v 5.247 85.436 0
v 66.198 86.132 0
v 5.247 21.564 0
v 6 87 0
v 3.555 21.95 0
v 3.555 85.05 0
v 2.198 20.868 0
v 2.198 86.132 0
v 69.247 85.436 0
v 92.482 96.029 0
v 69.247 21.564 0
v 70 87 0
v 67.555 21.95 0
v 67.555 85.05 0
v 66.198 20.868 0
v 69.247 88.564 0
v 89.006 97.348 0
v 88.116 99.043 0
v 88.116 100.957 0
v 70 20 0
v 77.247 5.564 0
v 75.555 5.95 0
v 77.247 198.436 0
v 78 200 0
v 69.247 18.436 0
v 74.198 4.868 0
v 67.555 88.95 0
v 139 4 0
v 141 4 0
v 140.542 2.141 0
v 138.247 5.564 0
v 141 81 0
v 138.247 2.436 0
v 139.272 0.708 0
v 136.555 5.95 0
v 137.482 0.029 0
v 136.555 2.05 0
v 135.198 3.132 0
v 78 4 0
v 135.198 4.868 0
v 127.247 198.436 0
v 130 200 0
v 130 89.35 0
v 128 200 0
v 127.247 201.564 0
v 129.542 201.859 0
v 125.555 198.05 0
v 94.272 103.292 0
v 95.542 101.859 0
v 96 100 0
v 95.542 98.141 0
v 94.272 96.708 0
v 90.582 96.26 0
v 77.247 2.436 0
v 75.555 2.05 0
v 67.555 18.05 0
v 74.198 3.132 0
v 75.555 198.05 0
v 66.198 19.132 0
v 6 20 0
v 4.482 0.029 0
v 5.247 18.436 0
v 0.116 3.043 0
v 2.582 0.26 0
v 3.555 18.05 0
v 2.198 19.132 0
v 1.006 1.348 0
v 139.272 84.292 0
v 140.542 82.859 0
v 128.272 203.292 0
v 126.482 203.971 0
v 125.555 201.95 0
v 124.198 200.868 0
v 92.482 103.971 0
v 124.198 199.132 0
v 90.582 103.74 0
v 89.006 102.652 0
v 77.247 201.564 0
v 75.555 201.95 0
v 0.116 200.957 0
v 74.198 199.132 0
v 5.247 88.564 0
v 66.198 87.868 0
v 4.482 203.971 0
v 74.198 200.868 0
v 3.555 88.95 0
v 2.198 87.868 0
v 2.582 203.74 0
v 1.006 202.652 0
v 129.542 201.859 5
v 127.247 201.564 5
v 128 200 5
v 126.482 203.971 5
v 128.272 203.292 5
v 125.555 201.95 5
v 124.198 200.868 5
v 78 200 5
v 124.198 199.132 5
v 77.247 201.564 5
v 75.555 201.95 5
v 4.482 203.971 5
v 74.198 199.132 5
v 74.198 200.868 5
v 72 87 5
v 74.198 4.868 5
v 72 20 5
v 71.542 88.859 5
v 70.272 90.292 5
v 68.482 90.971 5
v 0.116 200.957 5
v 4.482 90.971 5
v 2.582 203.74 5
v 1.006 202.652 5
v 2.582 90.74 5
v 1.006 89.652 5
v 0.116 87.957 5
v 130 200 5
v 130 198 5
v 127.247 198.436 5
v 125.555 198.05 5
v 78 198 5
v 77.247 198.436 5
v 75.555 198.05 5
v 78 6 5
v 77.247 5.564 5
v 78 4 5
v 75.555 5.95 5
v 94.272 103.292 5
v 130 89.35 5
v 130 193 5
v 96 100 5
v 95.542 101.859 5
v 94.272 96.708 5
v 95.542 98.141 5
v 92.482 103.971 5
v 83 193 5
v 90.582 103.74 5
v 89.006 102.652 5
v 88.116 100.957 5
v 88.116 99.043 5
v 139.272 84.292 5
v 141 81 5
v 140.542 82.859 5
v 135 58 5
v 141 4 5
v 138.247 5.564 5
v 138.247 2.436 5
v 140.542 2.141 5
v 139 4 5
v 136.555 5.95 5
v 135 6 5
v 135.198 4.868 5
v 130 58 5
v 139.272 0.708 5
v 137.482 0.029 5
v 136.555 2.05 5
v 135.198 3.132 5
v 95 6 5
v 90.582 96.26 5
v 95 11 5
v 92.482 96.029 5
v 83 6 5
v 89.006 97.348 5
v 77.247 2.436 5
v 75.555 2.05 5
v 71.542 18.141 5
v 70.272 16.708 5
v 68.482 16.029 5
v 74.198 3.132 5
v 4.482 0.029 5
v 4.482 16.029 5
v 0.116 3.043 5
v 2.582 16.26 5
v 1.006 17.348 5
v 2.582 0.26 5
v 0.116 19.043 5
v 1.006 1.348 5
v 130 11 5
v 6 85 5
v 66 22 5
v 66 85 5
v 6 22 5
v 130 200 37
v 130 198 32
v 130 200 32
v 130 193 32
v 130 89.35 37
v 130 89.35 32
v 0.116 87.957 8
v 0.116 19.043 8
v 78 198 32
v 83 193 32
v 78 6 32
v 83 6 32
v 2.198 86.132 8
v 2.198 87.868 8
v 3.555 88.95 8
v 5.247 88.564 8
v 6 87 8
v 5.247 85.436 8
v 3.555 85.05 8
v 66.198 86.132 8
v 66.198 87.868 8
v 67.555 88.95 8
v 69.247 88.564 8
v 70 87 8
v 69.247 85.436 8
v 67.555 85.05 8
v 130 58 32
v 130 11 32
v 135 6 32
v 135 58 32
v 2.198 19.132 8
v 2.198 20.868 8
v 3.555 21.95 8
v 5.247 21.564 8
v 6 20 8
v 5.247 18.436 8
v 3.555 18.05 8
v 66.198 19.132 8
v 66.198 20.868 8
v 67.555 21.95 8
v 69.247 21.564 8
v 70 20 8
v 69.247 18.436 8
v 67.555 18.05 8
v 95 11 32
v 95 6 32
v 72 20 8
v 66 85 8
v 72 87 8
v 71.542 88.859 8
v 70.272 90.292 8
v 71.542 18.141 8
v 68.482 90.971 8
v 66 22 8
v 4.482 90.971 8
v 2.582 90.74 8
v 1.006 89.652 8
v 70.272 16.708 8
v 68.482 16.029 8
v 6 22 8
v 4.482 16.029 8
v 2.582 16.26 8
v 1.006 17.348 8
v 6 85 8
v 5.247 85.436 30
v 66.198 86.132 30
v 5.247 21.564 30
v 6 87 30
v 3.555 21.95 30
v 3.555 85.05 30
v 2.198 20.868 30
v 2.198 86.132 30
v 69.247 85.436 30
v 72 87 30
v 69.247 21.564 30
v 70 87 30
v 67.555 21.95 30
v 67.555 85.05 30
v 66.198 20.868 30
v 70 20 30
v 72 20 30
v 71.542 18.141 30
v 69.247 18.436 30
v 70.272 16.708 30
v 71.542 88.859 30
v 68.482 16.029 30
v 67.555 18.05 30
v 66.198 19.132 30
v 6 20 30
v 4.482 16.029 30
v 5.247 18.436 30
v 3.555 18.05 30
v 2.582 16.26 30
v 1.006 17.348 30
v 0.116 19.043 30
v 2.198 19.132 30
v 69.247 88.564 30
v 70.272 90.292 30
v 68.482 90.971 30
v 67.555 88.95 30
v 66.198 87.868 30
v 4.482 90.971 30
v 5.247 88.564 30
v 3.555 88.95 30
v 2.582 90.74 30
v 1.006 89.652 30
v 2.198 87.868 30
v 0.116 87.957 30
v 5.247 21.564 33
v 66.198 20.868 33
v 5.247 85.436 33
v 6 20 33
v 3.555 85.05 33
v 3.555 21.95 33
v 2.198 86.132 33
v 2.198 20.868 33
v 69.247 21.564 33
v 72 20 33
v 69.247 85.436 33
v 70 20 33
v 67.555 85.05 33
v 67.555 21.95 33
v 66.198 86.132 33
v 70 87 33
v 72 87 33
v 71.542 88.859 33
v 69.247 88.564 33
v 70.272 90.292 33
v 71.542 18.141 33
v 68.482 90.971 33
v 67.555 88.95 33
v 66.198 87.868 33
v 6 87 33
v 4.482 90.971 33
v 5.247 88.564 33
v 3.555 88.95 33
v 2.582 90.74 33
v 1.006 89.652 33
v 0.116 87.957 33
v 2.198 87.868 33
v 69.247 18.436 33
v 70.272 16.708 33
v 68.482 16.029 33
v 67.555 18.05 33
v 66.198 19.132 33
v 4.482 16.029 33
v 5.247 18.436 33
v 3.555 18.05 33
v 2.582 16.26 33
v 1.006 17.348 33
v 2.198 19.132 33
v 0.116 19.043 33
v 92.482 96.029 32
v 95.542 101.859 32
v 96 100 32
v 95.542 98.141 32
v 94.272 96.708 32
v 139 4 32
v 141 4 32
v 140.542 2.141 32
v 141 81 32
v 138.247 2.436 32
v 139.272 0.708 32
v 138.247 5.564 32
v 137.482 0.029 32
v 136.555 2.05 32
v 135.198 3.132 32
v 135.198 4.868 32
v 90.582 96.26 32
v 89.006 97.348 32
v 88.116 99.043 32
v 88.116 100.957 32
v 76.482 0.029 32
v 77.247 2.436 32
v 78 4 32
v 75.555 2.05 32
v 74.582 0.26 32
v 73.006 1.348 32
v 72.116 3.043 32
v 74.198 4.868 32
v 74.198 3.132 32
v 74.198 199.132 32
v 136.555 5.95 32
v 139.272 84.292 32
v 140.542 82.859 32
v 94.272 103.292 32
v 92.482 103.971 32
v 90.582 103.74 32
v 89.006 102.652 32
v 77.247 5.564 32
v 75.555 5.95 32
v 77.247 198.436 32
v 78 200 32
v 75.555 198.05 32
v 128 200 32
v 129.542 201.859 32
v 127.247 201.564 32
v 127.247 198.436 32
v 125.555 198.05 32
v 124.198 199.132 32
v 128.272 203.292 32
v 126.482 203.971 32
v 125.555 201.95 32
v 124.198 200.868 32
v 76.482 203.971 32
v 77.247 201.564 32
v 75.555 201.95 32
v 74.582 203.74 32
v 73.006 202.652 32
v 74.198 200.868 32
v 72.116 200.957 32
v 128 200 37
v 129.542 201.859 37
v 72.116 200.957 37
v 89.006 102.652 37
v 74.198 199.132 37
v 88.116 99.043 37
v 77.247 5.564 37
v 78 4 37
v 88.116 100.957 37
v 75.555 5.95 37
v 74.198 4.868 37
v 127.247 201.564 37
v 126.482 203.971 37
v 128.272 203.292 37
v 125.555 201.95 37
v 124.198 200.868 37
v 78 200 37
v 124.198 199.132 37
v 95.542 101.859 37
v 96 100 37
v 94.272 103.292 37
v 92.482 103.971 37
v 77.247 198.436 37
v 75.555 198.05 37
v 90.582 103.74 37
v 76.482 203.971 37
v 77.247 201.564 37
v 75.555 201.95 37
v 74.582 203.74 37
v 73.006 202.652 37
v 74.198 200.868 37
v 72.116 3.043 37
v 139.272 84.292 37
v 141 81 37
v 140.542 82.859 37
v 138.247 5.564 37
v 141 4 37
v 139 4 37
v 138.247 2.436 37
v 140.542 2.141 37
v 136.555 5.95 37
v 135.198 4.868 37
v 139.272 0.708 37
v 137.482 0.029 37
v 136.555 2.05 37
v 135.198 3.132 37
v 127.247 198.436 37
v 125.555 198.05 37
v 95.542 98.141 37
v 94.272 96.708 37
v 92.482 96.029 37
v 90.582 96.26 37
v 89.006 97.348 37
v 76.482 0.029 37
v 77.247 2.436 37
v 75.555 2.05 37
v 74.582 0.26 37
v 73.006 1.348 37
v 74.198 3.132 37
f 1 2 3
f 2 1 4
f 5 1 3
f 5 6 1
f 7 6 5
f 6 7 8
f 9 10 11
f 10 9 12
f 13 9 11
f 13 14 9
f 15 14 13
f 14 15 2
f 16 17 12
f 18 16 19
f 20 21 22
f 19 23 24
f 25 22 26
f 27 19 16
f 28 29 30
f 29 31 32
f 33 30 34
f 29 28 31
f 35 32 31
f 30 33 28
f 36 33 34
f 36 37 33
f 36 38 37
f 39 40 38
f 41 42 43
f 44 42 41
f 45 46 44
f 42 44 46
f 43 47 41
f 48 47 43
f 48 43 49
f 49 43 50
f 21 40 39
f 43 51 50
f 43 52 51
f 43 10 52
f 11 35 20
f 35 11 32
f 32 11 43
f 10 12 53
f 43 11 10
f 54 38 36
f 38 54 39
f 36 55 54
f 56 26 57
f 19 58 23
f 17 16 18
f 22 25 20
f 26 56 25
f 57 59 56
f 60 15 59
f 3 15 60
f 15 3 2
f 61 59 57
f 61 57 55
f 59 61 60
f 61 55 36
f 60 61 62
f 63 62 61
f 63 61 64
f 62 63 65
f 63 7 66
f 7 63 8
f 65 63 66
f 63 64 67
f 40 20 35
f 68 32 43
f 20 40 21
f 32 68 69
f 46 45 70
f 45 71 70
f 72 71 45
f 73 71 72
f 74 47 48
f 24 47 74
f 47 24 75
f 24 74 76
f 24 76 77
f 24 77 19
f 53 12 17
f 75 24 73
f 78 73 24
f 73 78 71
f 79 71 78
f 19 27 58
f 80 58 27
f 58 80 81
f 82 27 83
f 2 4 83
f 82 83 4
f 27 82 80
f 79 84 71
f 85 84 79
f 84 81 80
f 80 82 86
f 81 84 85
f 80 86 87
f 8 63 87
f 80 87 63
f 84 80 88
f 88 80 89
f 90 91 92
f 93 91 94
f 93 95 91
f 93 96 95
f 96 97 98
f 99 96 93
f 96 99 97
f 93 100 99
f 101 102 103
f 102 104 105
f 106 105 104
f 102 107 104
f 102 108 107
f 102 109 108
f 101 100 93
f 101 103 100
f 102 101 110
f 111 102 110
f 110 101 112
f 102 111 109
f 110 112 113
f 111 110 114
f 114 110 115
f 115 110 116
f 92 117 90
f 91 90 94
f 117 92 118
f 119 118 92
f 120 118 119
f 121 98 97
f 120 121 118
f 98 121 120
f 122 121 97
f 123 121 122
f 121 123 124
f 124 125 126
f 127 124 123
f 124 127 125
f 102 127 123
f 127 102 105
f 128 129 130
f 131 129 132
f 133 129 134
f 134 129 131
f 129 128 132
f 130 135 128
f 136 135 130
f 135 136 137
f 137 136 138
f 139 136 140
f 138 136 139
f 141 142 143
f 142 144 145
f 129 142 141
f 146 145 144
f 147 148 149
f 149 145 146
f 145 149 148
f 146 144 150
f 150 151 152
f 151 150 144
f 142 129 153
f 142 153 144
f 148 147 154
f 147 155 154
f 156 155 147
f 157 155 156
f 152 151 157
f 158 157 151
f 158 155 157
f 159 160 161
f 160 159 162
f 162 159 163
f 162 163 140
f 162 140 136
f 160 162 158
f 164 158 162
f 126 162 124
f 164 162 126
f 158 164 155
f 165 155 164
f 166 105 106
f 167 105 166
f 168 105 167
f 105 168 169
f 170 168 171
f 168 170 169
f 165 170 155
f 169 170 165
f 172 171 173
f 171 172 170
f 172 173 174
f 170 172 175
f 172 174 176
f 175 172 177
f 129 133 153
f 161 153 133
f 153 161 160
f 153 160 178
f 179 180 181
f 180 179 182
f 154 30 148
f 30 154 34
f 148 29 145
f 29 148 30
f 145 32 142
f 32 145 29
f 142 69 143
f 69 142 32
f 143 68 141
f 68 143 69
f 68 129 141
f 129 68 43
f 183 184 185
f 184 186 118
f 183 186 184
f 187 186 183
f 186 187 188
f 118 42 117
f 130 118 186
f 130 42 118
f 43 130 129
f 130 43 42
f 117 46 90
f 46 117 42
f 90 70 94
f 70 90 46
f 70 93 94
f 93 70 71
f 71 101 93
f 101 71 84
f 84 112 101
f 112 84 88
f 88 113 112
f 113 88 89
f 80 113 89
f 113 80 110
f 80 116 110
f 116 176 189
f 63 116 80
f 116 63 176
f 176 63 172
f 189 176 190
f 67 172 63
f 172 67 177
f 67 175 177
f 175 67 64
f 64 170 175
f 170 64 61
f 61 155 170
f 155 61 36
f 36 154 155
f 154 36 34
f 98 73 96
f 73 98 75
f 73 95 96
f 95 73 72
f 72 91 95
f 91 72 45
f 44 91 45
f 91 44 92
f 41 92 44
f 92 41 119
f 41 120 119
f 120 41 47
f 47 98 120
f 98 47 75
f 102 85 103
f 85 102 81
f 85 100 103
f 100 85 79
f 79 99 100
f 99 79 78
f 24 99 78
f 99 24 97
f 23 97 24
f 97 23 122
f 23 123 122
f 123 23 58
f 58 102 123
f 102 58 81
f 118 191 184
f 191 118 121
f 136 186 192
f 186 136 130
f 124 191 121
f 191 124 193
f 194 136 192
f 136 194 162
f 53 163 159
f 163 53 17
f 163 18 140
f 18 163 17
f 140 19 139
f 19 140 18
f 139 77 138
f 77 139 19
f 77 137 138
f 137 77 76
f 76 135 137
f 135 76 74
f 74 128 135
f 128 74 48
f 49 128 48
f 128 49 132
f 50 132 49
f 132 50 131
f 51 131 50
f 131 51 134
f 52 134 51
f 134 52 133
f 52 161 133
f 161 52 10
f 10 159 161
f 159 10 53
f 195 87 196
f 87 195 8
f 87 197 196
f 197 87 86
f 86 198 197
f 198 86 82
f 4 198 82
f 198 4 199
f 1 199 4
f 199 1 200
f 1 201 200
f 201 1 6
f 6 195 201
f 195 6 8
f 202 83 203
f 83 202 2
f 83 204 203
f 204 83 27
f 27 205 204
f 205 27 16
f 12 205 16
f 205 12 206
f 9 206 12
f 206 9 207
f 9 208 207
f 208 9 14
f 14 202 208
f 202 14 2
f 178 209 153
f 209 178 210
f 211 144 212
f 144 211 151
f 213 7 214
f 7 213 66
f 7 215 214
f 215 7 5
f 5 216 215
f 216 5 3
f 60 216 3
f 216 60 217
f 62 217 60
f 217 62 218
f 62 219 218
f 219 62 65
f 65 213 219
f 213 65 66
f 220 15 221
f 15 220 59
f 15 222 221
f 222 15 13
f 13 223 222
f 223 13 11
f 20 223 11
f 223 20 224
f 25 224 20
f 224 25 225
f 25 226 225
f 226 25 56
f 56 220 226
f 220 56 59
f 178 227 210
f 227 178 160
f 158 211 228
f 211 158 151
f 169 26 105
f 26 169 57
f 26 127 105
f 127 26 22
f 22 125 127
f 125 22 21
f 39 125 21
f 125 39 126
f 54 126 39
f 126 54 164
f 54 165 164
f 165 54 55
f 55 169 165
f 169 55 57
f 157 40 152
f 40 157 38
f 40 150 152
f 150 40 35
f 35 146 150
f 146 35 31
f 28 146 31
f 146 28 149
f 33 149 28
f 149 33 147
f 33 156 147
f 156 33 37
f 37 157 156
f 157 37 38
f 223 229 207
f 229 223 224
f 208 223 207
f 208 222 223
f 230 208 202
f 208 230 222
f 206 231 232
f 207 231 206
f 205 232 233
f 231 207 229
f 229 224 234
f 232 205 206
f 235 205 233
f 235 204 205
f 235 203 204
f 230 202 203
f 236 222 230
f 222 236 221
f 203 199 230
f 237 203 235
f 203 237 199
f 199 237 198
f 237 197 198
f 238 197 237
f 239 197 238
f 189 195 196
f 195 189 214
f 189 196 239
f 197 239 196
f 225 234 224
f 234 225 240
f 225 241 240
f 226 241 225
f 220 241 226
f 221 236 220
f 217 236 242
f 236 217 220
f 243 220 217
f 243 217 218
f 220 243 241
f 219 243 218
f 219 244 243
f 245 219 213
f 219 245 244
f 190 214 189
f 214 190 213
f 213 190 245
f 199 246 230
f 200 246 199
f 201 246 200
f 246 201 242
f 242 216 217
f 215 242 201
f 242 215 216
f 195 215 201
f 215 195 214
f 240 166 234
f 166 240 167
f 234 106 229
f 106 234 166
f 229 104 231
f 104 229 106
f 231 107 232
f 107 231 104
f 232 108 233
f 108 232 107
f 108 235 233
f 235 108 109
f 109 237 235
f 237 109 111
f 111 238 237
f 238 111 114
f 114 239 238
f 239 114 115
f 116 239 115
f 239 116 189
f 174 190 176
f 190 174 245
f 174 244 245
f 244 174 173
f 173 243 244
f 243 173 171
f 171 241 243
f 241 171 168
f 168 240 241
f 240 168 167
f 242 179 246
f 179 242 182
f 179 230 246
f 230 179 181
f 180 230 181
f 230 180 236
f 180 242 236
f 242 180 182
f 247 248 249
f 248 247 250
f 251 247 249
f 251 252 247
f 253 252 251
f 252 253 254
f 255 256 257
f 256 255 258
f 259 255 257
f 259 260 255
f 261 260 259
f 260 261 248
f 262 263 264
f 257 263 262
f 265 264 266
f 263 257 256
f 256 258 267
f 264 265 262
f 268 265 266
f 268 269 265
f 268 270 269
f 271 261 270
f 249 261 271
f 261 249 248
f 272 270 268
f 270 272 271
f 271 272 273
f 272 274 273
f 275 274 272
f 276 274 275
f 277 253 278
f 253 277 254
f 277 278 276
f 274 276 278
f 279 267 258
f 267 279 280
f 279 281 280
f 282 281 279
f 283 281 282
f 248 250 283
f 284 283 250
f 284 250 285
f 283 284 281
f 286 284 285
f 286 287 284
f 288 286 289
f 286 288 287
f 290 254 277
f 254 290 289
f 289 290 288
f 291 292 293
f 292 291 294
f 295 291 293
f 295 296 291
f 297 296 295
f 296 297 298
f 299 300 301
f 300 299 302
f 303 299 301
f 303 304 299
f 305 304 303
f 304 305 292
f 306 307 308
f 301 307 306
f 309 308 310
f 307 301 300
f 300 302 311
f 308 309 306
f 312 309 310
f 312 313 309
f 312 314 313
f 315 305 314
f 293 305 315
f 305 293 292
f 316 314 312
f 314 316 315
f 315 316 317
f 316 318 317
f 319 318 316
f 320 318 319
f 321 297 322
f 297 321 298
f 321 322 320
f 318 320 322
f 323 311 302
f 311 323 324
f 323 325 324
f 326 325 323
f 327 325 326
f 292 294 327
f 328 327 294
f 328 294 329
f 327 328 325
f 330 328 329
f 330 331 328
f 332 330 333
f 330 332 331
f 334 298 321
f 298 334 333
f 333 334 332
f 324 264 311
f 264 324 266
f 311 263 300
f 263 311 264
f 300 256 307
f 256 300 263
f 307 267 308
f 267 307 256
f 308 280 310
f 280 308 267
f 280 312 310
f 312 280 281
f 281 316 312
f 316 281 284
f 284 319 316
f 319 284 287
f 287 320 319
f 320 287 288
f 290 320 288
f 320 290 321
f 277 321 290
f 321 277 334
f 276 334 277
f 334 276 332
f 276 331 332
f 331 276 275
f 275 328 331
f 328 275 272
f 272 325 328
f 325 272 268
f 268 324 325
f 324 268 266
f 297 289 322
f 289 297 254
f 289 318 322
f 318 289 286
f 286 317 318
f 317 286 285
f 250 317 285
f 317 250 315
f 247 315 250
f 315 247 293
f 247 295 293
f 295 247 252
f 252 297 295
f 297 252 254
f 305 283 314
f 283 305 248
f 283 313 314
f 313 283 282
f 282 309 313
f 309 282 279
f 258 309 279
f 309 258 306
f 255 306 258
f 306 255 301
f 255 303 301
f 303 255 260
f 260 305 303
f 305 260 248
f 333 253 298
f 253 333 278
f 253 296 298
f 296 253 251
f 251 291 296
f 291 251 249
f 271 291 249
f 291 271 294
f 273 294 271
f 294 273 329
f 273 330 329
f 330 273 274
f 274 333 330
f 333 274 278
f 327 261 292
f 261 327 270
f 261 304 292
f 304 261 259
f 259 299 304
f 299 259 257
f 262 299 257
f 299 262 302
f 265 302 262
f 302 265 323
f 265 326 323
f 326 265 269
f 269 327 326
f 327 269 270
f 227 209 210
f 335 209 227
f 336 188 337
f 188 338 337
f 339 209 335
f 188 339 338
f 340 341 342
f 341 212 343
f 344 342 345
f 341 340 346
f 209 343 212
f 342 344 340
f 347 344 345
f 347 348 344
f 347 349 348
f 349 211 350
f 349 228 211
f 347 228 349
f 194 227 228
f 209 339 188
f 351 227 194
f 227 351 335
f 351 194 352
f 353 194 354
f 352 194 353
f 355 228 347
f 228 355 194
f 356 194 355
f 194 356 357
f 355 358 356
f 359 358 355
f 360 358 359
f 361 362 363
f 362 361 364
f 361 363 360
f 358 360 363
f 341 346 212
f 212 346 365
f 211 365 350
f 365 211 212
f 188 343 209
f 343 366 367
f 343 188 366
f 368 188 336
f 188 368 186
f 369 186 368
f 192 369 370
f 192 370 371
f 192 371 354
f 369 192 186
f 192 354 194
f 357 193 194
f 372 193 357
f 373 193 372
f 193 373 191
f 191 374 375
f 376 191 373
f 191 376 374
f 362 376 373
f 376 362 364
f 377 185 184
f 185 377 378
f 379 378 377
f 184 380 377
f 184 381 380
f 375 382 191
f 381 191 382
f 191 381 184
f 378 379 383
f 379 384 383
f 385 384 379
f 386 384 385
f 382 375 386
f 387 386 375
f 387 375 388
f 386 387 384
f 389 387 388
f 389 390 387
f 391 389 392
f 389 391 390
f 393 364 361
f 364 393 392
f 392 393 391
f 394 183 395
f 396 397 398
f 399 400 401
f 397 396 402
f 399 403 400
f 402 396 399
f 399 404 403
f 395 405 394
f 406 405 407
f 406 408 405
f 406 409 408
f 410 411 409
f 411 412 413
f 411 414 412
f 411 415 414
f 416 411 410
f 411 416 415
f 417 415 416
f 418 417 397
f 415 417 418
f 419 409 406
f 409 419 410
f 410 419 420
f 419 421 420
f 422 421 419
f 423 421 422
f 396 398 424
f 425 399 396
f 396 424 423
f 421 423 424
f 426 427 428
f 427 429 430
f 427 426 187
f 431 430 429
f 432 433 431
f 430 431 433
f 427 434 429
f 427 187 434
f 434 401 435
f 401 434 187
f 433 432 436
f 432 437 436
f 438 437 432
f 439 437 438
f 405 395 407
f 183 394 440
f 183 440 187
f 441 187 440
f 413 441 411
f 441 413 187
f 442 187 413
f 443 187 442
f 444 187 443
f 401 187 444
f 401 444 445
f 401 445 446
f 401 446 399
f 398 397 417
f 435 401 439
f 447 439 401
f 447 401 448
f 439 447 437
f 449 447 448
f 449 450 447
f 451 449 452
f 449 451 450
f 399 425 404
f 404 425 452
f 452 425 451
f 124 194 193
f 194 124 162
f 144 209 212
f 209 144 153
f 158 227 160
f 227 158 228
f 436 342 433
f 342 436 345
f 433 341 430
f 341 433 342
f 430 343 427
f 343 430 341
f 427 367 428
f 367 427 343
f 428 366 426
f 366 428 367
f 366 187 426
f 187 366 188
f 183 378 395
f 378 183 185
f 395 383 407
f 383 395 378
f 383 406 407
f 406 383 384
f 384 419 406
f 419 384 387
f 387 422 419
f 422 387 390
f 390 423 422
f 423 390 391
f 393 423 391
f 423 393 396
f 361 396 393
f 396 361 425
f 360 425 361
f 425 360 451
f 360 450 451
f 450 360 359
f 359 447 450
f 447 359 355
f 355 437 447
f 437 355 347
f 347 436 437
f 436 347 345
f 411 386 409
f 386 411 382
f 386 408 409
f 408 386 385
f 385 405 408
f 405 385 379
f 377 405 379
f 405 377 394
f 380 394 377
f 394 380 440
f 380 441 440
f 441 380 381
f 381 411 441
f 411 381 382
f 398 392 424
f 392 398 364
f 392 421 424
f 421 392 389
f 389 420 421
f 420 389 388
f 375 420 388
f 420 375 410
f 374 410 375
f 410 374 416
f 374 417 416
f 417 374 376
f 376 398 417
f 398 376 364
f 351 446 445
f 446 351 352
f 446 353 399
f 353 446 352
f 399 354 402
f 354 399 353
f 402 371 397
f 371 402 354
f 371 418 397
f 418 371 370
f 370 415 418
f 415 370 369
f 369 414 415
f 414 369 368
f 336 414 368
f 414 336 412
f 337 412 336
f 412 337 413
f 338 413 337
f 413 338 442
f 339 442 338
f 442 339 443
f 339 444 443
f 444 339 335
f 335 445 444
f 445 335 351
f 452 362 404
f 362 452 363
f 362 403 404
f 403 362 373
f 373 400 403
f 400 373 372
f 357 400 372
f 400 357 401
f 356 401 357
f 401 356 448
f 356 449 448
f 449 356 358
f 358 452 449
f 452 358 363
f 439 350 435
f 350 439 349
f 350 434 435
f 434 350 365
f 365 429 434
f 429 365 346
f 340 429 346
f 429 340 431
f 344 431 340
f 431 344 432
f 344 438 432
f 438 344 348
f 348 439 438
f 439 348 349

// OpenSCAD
// file: PD_Wall_Back.scad
/*
 * This is a wall for the Power distribution at buttom 
 * It should be about 5 mm thick in order to match
 */

module PD_Wall_Back(){
    
    polygon(points=[[0, 5], [17, 5], [17, 0], [34, 0],
        [34, 5], [51, 5], [51, 0], [68, 0], [68, 5],
        [85, 5], [85, 0], [102, 0], [102, 5], [119, 5],
        [119, 0], [136, 0], [136, 5], [153, 5], [153, 0],  
        [170, 0], [170, 5], [187, 5], [187, 15], [192, 15], 
        [192, 22], [187, 22], [187, 32], [170, 32], 
        [170, 37], [153, 37], [153, 32], [136, 32], 
        [136, 37], [119, 37], [119, 32], [102, 32], 
        [102, 37], [85, 37], [85, 32], [68, 32], 
        [68, 37], [51, 37], [51, 32], [34, 32],
        [34, 37], [17, 37], [17, 32], [0, 32] ]);

}

/*
 * uncomment the following line to view or debug here
 * comment to use in other file
 */
//PD_Wall_Back();
// file: PD_Wall_Top_Front.scad
/*
 * This is a wall for the Power distribution at buttom 
 * It should be about 5 mm thick in order to match
 */

module PD_Wall_Top_Front(){
    
    polygon(points=[[0, 5], [20, 5], [20, 0], [37, 0], 
        [37, 5], [52, 5], [52, 32], [37, 32], [37, 37], 
        [20, 37], [20, 32], [0, 32], [0, 22], [5, 22], 
        [5, 15], [0, 15] ]);

}

/*
 * uncomment the following line to view or debug here
 * comment to use in other file
 */
//PD_Wall_Top_Front();
// file: PD_Wall_Buttom.scad
/*
 * This is a wall for the Power distribution at buttom 
 * It should be about 5 mm thick in order to match
 */

module PD_Wall_Buttom(){
    
    polygon(points=[[0, 5], [10, 5], [10, 0], [25, 0],
        [25, 5], [35, 5], [35, 15], [40, 15], [40, 22],
        [35, 22], [35, 32], [25, 32], [25, 37], [10, 37],
        [10, 32], [0, 32] ]);

}

/*
 * uncomment the following line to view or debug here
 * comment to use in other file
 */
//PD_Wall_Buttom();
// file: BMMC_Bracket.scad
/*
 * This is a bracket to hold the BMMC in place. I shouldn't 
 * be thicker then 3 mm for the connectors to be plugged 
 * in. 
 *
 * The Blackmagic Micro Converter BiDirectional SD/HDMI 3G 
 * has a size of:
 *   59,6 (connecors) x 62,6 (blank) x 25,3 mm (height)
 * we use 60 x 63 mm here
 *
 * this part is beeing clued to the bottom 
 */

module BMMC_Bracket(){
    
    difference() {
    
        // outer square(72,85) with rounded corners
        translate([4,4]) minkowski(){
            square([64,67]);
            circle(4);
        }
        
        // inner square to hold the BMMC in place
        translate([6,6]) square([60,63]);
        
        // drill holes
        translate ([4,4]) circle(2);
        translate ([68,4]) circle(2);
        translate ([4,71]) circle(2);
        translate ([68,71]) circle(2);
    
    }
    
}

/*
 * uncomment the following line to view or debug here
 * comment to use in other file
 */
//BMMC_Bracket();
// file: BMMC_Cap.scad
/*
 * This is a cap for the bracket to hold the BMMC in place.
 * It shouldn't be thicker then 3 mm for the connectors to 
 * be plugged in. 
 *
 * The Blackmagic Micro Converter BiDirectional SD/HDMI 3G 
 * has a size of:
 *   59,6 (connecors) x 62,6 (blank) x 25,3 mm (height)
 * we use 60 x 63 mm here
 *
 * this part is beeing used once
 */

module BMMC_Cap(){
    
    difference() {
    
        // outer square(72,85) with rounded corners
        translate([4,4]) minkowski(){
            square([64,67]);
            circle(4);
        }
        
        // drill holes
        translate ([4,4]) circle(2);
        translate ([68,4]) circle(2);
        translate ([4,71]) circle(2);
        translate ([68,71]) circle(2);
    
    }

}

/*
 * uncomment the following line to view or debug here
 * comment to use in other file
 */
//BMMC_Cap();
// file: Power_Cap.scad
/*
 * This is a cap for the bracket to hold the Power
 * distribution and USB-Power-Supply in place.
 * It should be about 5 mm thick in order to be robust 
 * enough
 */

module Power_Cap(){
    
    difference() {
        
        // the cap
        minkowski(){
       
            polygon(points=[ [4, 4], [65, 4], [65, 81], 
            [54, 87], [54, 200], [4, 200] ]);
            circle(4);
            
        }
        
        // drill holes
        translate ([4, 4]) circle(2);
        translate ([65, 4]) circle(2);
        translate ([54, 200]) circle(2);
        translate ([4, 200]) circle(2);
        
        // drill hole for mounting nut
        translate ([20, 100]) circle(4);
        
        // power distribution back wall
        translate([6, 23]) square([5, 17]);
        translate([6, 57]) square([5, 17]);
        translate([6, 91]) square([5, 17]);
        translate([6, 125]) square([5, 17]);
        translate([6, 159]) square([5, 17]);
        
        // power distribution top wall
        translate([26, 193]) square([17, 5]);
        
        // power distribution buttom wall
        translate([33, 6]) square([15, 5]);
        
        // power distribution front wall
        translate([58, 26]) square([5, 17]);
        
    }

}

/*
 * uncomment the following line to view or debug here
 * comment to use in other file
 */
//Power_Cap();
// file: Base_Plate.scad
/*
 * This is the base plate to hold the Power
 * distribution and BMMC in place.
 * It should be about 5 mm thick in order to be robust 
 * enough
 */

module Base_Plate(){
    
    difference() {
        
        // the cap
        minkowski(){
       
            polygon(points=[[4,4],[137,4],[137,81],[126,87],
            [126,200],[4,200]]);
            circle(4);
            
        }
        
        // drill holes for power distribution
        translate ([76,4]) circle(2);
        translate ([137,4]) circle(2);
        translate ([126,200]) circle(2);
        translate ([76,200]) circle(2);
        
        // drill hole for mounting drive in nut
        translate ([92,100]) circle(4);
        
        // drill holes for BMCC
        translate ([4,20]) circle(2);
        translate ([68,20]) circle(2);
        translate ([4,87]) circle(2);
        translate ([68,87]) circle(2);

        // power distribution back wall
        translate([78, 23]) square([5, 17]);
        translate([78, 57]) square([5, 17]);
        translate([78, 91]) square([5, 17]);
        translate([78, 125]) square([5, 17]);
        translate([78, 159]) square([5, 17]);
        
        // power distribution top wall
        translate([98, 193]) square([17, 5]);
        
        // power distribution buttom wall
        translate([105, 6]) square([15, 5]);
        
        // power distribution front wall
        translate([130, 26]) square([5, 17]);
        
    }

}

/*
 * uncomment the following line to view or debug here
 * comment to use in other file
 */
//Base_Plate();
// main file
/*
 * 3D model of the CamUtilityHolder
 */
 
// include required files
include <Base_Plate.scad>
include <Power_Cap.scad>
include <BMMC_Cap.scad>
include <BMMC_Bracket.scad>
include <PD_Wall_Buttom.scad>
include <PD_Wall_Top_Front.scad>
include <PD_Wall_Back.scad>

color("blue") linear_extrude(5) Base_Plate();
color("green") translate([0, 16, 5]) linear_extrude(3) BMMC_Bracket();
color("red") translate([0, 16, 30]) linear_extrude(3) BMMC_Cap();

color("LawnGreen") rotate([90, 0, 90]) translate([6, 0, 78]) linear_extrude(5) PD_Wall_Back();
color("LightSeaGreen") rotate([90, 0, 0]) translate([78, 0, -198]) linear_extrude(5) PD_Wall_Top_Front();
color("LightSeaGreen") rotate([90, 0, 90]) translate([6, 0, 130]) linear_extrude(5) PD_Wall_Top_Front();
color("PaleGreen") rotate([90, 0, 0]) translate([95, 0, -11]) linear_extrude(5) PD_Wall_Buttom();
color("orange") translate([72, 0, 32]) linear_extrude(5) Power_Cap();
